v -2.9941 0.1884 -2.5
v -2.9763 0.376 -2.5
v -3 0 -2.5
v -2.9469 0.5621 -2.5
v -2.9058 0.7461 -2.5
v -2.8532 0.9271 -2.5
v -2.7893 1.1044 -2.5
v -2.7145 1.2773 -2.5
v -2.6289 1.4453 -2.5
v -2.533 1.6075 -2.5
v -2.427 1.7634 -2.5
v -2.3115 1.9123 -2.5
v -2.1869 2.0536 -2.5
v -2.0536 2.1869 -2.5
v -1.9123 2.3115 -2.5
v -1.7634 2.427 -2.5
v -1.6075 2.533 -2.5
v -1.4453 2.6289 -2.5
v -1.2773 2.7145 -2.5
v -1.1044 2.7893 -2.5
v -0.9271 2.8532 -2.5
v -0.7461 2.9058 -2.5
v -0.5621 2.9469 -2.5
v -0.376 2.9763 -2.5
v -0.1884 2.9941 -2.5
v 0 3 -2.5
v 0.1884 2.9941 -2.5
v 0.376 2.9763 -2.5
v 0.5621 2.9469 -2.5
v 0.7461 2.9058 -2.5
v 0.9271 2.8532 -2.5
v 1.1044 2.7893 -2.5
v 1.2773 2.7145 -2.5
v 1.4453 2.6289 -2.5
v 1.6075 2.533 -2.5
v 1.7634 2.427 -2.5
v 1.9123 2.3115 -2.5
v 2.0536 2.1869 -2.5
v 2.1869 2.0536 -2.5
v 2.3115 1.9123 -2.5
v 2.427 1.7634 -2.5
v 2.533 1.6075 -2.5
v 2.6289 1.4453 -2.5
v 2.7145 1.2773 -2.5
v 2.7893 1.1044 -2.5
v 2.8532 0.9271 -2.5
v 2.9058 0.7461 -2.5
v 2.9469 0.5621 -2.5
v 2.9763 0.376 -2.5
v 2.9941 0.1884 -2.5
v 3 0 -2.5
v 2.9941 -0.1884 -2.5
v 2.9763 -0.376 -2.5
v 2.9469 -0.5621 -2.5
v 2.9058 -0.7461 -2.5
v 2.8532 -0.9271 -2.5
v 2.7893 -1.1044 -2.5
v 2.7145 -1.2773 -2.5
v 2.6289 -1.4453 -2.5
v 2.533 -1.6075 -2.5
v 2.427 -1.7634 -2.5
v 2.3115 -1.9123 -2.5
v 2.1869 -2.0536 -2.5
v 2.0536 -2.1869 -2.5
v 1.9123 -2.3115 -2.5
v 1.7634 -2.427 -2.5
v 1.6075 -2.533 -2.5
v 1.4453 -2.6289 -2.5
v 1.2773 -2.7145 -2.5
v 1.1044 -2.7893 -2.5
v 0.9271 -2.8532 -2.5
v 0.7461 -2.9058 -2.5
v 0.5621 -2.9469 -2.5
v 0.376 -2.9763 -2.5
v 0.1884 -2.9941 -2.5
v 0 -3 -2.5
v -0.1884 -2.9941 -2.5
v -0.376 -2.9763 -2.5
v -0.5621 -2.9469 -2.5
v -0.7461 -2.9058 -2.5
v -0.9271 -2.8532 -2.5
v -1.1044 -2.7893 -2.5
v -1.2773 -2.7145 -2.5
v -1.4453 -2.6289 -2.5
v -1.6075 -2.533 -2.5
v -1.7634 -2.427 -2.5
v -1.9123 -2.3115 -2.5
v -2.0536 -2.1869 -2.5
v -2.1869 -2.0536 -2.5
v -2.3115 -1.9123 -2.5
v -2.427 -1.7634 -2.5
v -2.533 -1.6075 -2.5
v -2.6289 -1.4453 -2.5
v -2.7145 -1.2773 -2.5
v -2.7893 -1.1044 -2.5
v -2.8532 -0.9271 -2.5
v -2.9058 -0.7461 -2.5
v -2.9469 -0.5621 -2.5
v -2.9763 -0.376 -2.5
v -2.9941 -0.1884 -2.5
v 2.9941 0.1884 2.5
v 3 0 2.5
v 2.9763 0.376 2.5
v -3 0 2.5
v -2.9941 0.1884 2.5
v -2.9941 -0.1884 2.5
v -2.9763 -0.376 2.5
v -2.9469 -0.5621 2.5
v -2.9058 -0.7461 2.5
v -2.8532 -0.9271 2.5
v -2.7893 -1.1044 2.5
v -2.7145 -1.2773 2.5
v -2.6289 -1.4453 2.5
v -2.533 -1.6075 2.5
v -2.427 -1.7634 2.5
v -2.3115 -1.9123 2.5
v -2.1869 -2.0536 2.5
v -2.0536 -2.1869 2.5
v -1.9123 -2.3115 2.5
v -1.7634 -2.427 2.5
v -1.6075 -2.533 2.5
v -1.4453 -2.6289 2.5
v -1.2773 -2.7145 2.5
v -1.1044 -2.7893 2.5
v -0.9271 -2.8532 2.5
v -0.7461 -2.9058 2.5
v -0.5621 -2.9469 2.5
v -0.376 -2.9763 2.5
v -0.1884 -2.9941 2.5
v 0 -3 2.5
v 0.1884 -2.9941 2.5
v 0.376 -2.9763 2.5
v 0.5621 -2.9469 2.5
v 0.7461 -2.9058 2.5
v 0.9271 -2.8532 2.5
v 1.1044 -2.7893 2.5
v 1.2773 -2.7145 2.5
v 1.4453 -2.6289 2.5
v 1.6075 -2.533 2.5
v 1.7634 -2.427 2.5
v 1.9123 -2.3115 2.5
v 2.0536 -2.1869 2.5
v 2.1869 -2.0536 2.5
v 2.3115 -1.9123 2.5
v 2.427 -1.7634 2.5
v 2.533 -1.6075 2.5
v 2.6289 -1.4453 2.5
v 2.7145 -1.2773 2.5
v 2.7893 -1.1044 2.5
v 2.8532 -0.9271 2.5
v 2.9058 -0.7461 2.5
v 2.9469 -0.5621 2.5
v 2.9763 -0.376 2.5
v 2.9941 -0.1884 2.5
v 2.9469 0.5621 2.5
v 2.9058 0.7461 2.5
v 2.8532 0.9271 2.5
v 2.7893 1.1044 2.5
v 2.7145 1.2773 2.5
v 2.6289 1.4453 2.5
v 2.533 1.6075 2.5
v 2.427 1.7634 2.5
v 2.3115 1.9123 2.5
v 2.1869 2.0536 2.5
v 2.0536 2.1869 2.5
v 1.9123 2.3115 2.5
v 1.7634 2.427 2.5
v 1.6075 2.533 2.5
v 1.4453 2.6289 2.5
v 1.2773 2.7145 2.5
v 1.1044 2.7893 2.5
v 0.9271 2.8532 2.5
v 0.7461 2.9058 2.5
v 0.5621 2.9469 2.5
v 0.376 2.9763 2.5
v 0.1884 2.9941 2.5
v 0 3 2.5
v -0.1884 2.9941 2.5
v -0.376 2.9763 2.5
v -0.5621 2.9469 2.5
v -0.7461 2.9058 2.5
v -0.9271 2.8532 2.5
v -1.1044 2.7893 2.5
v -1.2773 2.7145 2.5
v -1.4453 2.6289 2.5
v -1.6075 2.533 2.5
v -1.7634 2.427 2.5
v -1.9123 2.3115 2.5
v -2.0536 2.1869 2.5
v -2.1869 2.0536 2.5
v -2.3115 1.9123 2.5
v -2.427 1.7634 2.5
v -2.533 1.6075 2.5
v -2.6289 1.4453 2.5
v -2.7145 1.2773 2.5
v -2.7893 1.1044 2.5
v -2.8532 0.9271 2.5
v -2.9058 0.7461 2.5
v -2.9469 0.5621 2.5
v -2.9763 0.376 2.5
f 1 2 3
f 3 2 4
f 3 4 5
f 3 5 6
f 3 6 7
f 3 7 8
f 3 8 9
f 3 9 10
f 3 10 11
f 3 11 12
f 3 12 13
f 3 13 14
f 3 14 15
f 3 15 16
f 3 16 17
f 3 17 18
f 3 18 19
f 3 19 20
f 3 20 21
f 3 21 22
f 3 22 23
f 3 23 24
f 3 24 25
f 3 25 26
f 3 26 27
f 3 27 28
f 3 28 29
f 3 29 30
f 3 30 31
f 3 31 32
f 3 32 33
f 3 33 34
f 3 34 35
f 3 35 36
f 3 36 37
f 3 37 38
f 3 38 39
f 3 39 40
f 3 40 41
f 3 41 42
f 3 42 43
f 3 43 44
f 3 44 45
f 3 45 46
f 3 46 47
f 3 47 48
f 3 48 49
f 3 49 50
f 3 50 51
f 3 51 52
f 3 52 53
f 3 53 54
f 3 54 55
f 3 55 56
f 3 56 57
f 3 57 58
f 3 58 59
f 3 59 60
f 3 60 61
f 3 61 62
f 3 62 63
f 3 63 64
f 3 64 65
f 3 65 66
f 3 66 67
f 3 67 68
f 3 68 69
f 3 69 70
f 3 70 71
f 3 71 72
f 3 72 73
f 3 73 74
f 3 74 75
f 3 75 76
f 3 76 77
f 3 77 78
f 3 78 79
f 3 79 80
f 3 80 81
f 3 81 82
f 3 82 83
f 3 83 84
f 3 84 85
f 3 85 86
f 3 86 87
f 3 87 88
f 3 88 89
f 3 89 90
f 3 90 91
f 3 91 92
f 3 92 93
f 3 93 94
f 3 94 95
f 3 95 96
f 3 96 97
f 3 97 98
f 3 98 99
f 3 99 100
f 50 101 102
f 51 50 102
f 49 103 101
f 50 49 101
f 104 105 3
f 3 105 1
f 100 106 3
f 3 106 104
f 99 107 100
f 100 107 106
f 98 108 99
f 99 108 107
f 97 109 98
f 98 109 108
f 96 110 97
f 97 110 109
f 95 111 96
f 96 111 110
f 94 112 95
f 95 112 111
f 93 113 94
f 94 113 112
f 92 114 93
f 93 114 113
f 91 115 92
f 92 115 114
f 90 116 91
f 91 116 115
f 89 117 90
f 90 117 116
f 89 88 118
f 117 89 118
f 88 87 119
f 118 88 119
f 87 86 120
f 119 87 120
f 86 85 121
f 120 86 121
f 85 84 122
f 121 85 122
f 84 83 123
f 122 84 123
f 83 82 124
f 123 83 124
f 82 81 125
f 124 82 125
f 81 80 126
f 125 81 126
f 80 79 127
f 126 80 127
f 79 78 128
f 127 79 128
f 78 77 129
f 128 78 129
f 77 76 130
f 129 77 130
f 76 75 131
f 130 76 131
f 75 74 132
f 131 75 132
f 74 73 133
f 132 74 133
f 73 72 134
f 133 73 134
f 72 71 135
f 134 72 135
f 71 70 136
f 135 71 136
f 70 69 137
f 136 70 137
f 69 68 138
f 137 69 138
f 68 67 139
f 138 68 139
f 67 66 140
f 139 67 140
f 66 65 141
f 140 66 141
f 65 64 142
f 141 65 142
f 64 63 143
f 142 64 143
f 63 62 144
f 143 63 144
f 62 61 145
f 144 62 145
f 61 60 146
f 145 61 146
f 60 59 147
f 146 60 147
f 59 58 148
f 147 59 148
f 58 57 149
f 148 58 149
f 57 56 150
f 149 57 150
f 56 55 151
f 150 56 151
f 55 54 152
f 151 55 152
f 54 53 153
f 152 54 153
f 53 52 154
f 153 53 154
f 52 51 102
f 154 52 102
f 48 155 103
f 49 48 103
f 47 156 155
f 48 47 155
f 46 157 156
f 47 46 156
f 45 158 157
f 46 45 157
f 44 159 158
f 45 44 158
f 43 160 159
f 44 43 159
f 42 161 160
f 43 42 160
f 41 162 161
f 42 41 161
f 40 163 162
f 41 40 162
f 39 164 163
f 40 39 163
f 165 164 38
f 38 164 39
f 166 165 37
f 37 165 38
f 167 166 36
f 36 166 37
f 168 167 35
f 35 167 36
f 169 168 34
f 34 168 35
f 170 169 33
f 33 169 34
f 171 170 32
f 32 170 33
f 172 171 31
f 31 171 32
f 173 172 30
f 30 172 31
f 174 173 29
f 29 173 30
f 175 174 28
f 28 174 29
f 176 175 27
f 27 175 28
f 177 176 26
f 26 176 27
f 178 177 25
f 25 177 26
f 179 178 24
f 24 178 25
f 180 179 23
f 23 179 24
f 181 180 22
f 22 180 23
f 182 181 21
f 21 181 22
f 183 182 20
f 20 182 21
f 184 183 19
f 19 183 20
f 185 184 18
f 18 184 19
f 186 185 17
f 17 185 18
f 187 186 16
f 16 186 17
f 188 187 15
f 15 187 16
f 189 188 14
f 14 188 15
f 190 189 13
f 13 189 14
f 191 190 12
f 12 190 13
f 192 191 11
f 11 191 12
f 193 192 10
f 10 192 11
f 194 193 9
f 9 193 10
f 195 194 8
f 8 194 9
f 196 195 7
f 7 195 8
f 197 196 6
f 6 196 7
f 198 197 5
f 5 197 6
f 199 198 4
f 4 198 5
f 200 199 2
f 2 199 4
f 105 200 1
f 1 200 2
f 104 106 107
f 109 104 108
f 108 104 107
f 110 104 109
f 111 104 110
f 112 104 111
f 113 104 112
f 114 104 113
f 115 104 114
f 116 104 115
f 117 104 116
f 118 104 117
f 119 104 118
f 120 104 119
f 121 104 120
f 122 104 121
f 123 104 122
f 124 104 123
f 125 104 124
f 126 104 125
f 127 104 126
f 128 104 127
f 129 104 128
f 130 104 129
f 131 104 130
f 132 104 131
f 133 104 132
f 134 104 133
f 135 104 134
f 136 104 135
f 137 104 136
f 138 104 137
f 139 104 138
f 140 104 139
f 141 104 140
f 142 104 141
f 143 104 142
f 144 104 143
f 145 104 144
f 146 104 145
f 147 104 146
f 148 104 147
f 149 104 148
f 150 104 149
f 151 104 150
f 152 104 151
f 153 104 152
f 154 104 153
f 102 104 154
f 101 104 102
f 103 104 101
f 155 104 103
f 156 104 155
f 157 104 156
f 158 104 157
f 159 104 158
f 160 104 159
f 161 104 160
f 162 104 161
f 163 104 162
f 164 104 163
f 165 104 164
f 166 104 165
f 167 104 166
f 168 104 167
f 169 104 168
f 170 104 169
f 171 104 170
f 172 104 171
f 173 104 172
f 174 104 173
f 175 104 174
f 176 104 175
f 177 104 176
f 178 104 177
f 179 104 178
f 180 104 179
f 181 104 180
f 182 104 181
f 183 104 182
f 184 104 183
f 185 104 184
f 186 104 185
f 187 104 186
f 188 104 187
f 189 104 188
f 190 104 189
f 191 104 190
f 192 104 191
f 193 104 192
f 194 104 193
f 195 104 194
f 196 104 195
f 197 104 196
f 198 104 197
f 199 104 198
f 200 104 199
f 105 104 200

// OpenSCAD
/*
 * OpenSCAD Workshop Examples
 * Copyright (c) 2013 Anar Software LLC. < http://anars.com >
 *
 * This program is free software: you can redistribute it and/or modify it under
 * the terms of the GNU General Public License as published by the Free Software
 * Foundation, either version 3 of the License, or (at your option) any later
 * version.
 *
 * This program is distributed in the hope that it will be useful, but WITHOUT
 * ANY WARRANTY; without even the implied warranty of MERCHANTABILITY or FITNESS
 * FOR A PARTICULAR PURPOSE. See the GNU General Public License for more details.
 *
 * You should have received a copy of the GNU General Public License along with
 * this program. If not, see < http://www.gnu.org/licenses/ >
 *
 */
/*

Creates 3 unit radius, 5 unit height cylinder and center the height of the cylinder around the origin.

Parameters :

	cylinder(r = x, h = x, center = boolean);

*/

$fn = 100;

cylinder(r = 3, h = 5, center = true);
